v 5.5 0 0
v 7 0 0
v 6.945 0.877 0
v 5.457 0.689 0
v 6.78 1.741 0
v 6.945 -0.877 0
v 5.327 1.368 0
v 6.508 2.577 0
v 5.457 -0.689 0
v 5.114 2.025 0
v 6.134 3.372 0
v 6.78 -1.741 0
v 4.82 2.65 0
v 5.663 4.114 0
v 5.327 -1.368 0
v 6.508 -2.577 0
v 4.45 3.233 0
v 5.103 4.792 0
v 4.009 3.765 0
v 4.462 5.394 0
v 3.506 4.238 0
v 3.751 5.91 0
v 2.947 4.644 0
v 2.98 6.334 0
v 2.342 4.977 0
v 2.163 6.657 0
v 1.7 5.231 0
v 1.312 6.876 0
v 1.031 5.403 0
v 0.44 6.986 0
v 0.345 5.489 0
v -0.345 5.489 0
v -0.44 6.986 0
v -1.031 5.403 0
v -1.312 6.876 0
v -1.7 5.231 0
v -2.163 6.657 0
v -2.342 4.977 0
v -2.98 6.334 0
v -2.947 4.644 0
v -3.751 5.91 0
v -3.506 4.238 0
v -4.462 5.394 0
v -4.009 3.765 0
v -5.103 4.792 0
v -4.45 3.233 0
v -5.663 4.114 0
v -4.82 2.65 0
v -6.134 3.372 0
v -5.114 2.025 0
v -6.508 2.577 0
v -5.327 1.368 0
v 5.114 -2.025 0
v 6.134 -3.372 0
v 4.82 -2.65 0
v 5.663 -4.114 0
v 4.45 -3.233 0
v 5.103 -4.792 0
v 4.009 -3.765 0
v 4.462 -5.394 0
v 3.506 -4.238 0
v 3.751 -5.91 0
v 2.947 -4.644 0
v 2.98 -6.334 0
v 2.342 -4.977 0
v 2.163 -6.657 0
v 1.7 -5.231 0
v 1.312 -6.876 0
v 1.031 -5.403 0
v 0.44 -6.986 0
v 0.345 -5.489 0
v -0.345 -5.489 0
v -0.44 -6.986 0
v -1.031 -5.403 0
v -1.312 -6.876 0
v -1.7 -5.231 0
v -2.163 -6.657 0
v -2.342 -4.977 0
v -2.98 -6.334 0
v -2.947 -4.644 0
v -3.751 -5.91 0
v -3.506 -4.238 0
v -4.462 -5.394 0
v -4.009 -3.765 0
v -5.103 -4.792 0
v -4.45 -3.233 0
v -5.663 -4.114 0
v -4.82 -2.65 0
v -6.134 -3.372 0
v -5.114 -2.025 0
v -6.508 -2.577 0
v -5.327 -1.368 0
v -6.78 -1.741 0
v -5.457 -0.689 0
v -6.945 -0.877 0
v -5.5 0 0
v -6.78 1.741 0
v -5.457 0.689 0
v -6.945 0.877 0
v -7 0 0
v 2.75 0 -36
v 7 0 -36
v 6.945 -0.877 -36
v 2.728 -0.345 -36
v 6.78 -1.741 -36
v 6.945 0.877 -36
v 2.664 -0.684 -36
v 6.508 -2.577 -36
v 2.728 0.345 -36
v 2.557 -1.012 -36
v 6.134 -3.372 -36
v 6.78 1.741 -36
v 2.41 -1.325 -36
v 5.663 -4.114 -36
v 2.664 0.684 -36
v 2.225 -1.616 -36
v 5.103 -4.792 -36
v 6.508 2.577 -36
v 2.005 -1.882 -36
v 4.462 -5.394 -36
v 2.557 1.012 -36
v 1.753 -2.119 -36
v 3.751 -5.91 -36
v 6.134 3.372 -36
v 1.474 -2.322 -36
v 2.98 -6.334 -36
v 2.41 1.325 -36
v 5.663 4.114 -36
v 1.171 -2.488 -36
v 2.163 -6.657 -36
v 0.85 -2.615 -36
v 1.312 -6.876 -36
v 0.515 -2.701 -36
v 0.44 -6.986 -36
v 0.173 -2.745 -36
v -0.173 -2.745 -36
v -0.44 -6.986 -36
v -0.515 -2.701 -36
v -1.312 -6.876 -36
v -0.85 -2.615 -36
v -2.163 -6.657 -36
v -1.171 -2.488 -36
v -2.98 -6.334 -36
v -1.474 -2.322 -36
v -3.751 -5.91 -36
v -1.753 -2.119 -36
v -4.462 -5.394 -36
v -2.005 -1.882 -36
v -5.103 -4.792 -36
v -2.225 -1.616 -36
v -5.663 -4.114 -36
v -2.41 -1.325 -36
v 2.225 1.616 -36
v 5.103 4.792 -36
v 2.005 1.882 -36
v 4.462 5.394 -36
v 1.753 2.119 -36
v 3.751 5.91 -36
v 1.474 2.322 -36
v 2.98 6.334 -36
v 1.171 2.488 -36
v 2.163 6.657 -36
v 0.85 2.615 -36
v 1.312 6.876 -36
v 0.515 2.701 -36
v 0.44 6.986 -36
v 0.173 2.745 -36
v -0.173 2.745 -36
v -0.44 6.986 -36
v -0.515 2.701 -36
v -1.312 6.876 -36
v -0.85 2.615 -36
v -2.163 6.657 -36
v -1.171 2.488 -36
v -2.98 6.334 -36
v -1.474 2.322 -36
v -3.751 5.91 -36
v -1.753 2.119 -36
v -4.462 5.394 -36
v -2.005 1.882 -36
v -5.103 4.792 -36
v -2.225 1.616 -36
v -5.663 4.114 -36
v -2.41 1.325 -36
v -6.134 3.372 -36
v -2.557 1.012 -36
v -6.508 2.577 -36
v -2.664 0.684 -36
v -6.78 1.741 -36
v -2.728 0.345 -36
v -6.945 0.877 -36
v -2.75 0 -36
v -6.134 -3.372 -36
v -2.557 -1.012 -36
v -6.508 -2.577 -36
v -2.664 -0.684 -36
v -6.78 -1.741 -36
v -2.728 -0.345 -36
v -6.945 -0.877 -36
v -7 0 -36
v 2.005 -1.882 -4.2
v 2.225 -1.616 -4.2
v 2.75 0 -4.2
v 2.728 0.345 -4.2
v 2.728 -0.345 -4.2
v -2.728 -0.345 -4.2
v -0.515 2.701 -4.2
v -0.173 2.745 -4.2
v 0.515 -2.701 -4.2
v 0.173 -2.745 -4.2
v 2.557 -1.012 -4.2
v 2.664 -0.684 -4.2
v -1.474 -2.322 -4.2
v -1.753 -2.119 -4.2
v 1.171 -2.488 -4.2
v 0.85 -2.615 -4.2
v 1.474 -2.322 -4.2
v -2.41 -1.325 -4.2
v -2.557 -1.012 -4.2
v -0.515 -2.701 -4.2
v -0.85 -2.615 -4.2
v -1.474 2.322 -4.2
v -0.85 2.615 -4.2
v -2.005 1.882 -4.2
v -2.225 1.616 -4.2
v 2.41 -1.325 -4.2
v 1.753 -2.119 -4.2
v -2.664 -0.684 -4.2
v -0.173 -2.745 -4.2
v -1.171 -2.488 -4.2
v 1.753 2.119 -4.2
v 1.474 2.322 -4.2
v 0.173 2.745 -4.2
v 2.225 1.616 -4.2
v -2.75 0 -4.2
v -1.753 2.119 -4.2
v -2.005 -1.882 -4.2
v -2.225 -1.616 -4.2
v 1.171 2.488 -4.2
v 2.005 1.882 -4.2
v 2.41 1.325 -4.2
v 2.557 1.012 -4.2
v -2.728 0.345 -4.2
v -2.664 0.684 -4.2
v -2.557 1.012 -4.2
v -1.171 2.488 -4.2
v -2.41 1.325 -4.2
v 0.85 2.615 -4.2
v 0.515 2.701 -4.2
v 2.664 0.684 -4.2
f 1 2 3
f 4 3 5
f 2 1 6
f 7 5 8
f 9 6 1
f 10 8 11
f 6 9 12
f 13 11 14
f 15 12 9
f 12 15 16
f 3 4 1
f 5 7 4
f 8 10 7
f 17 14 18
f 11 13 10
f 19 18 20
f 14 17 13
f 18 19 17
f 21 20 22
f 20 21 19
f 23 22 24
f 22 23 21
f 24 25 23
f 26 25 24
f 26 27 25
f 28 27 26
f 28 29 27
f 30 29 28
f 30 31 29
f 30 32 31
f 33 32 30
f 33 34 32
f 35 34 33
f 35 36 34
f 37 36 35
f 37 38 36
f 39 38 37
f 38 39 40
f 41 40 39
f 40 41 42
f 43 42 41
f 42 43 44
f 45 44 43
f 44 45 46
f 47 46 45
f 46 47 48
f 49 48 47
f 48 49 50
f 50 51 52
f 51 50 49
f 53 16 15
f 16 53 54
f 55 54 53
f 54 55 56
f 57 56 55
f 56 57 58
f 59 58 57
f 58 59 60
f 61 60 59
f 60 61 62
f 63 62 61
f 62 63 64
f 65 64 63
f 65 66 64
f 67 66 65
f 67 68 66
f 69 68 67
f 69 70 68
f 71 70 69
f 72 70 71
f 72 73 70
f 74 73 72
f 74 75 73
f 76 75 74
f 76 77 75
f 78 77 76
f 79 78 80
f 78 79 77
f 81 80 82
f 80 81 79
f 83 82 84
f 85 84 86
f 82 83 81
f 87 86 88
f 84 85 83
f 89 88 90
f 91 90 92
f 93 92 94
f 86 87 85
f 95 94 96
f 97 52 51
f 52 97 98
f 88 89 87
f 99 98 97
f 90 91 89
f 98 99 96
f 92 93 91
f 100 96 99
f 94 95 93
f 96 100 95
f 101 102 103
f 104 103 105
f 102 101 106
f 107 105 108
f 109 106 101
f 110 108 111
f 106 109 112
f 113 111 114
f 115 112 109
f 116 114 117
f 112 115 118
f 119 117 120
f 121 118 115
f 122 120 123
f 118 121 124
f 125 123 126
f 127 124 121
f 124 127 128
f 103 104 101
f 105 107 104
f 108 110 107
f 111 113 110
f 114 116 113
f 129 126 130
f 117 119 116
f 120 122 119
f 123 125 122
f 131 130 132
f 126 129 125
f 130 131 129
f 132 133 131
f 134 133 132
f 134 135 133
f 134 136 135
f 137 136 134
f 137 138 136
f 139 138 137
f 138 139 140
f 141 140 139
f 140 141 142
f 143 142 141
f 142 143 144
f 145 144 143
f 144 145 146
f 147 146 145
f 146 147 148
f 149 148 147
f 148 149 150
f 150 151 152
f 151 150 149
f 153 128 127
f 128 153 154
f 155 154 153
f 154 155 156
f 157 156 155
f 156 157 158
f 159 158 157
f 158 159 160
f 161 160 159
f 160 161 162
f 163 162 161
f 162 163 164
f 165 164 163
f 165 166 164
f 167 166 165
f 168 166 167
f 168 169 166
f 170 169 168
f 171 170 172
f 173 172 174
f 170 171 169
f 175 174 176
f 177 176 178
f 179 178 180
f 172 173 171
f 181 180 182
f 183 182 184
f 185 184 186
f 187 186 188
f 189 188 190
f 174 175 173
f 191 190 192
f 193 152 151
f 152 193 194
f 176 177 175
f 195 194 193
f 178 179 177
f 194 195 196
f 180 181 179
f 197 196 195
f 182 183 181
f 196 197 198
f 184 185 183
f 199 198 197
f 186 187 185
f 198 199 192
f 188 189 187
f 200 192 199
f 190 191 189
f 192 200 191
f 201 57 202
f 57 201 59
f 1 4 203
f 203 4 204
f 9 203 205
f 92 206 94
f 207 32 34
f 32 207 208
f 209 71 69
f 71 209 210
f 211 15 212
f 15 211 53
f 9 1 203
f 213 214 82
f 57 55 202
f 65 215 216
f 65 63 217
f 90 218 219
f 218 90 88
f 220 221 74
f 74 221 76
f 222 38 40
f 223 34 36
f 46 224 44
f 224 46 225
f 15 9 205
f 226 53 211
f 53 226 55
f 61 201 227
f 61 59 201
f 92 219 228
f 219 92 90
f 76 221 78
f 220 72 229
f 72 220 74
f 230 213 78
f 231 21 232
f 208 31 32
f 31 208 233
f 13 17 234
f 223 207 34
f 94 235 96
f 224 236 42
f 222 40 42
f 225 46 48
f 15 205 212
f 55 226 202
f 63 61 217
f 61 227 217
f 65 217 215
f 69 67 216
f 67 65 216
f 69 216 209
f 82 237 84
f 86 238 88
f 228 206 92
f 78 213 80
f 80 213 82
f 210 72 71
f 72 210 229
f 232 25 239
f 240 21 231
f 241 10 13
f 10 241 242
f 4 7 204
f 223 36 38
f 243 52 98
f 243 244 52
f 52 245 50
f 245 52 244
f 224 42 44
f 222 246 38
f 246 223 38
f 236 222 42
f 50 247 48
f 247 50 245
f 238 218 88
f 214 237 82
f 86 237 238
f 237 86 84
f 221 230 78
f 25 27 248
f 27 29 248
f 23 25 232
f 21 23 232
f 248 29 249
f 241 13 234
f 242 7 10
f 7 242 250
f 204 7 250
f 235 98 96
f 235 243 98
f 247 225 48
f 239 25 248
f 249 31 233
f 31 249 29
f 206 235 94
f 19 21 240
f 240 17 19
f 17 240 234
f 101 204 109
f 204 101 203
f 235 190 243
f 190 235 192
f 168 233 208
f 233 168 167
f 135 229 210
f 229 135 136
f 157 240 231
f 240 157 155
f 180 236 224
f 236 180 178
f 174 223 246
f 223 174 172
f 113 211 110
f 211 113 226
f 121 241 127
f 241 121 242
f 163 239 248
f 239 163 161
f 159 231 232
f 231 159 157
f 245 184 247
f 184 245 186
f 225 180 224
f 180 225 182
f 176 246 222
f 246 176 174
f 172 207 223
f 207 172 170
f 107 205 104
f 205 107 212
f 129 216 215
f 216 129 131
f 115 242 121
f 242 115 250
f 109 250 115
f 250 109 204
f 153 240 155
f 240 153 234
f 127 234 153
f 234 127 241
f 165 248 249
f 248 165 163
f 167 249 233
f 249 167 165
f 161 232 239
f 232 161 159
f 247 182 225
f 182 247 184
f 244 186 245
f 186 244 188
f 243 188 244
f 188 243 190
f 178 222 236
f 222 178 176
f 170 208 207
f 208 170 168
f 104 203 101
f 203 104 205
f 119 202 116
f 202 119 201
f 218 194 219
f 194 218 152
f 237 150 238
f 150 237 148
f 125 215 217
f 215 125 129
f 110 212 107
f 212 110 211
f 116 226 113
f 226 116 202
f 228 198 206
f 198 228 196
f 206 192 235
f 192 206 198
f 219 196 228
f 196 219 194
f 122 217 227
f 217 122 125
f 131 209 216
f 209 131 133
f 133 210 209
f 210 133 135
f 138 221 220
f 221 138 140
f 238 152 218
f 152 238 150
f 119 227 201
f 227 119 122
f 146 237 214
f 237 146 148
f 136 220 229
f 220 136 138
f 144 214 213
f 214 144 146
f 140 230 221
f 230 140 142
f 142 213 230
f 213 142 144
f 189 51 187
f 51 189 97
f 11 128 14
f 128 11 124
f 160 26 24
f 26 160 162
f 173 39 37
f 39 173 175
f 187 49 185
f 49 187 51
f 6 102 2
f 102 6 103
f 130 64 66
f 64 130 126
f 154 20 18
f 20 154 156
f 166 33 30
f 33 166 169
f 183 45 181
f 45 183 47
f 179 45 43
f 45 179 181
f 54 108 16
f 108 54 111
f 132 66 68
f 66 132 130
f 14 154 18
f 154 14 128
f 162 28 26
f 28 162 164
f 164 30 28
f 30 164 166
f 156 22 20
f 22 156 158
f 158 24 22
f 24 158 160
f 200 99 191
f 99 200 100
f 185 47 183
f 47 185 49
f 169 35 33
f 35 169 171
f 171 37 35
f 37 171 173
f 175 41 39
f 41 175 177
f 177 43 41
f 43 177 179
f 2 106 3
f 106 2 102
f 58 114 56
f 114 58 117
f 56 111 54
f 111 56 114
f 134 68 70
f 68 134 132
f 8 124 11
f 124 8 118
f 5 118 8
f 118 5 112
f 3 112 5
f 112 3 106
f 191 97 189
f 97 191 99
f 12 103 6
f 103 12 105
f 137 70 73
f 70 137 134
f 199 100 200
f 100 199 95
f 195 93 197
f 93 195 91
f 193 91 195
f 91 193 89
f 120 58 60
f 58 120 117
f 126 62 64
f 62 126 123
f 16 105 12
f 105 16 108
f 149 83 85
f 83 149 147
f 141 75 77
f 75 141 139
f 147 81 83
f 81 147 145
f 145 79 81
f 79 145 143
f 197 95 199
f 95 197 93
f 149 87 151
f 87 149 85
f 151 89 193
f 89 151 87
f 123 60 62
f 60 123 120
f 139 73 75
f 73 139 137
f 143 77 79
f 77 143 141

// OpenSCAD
$fn = 50;


difference() {
	union() {
		translate(v = [0, 0, -36.0000000000]) {
			cylinder(h = 36, r = 7.0000000000);
		}
		cylinder(h = 0, r = 13.0000000000);
	}
	union() {
		translate(v = [0, 0, 0]) {
			rotate(a = [0, 0, 0]) {
				difference() {
					union() {
						#translate(v = [0, 0, -36.0000000000]) {
							cylinder(h = 36, r = 2.2500000000);
						}
						#translate(v = [0, 0, -4.2000000000]) {
							cylinder(h = 4.2000000000, r1 = 2.7500000000, r2 = 5.5000000000);
						}
						#translate(v = [0, 0, -36.0000000000]) {
							cylinder(h = 36, r = 2.7500000000);
						}
						#translate(v = [0, 0, -36.0000000000]) {
							cylinder(h = 36, r = 2.2500000000);
						}
					}
					union();
				}
			}
		}
	}
}
